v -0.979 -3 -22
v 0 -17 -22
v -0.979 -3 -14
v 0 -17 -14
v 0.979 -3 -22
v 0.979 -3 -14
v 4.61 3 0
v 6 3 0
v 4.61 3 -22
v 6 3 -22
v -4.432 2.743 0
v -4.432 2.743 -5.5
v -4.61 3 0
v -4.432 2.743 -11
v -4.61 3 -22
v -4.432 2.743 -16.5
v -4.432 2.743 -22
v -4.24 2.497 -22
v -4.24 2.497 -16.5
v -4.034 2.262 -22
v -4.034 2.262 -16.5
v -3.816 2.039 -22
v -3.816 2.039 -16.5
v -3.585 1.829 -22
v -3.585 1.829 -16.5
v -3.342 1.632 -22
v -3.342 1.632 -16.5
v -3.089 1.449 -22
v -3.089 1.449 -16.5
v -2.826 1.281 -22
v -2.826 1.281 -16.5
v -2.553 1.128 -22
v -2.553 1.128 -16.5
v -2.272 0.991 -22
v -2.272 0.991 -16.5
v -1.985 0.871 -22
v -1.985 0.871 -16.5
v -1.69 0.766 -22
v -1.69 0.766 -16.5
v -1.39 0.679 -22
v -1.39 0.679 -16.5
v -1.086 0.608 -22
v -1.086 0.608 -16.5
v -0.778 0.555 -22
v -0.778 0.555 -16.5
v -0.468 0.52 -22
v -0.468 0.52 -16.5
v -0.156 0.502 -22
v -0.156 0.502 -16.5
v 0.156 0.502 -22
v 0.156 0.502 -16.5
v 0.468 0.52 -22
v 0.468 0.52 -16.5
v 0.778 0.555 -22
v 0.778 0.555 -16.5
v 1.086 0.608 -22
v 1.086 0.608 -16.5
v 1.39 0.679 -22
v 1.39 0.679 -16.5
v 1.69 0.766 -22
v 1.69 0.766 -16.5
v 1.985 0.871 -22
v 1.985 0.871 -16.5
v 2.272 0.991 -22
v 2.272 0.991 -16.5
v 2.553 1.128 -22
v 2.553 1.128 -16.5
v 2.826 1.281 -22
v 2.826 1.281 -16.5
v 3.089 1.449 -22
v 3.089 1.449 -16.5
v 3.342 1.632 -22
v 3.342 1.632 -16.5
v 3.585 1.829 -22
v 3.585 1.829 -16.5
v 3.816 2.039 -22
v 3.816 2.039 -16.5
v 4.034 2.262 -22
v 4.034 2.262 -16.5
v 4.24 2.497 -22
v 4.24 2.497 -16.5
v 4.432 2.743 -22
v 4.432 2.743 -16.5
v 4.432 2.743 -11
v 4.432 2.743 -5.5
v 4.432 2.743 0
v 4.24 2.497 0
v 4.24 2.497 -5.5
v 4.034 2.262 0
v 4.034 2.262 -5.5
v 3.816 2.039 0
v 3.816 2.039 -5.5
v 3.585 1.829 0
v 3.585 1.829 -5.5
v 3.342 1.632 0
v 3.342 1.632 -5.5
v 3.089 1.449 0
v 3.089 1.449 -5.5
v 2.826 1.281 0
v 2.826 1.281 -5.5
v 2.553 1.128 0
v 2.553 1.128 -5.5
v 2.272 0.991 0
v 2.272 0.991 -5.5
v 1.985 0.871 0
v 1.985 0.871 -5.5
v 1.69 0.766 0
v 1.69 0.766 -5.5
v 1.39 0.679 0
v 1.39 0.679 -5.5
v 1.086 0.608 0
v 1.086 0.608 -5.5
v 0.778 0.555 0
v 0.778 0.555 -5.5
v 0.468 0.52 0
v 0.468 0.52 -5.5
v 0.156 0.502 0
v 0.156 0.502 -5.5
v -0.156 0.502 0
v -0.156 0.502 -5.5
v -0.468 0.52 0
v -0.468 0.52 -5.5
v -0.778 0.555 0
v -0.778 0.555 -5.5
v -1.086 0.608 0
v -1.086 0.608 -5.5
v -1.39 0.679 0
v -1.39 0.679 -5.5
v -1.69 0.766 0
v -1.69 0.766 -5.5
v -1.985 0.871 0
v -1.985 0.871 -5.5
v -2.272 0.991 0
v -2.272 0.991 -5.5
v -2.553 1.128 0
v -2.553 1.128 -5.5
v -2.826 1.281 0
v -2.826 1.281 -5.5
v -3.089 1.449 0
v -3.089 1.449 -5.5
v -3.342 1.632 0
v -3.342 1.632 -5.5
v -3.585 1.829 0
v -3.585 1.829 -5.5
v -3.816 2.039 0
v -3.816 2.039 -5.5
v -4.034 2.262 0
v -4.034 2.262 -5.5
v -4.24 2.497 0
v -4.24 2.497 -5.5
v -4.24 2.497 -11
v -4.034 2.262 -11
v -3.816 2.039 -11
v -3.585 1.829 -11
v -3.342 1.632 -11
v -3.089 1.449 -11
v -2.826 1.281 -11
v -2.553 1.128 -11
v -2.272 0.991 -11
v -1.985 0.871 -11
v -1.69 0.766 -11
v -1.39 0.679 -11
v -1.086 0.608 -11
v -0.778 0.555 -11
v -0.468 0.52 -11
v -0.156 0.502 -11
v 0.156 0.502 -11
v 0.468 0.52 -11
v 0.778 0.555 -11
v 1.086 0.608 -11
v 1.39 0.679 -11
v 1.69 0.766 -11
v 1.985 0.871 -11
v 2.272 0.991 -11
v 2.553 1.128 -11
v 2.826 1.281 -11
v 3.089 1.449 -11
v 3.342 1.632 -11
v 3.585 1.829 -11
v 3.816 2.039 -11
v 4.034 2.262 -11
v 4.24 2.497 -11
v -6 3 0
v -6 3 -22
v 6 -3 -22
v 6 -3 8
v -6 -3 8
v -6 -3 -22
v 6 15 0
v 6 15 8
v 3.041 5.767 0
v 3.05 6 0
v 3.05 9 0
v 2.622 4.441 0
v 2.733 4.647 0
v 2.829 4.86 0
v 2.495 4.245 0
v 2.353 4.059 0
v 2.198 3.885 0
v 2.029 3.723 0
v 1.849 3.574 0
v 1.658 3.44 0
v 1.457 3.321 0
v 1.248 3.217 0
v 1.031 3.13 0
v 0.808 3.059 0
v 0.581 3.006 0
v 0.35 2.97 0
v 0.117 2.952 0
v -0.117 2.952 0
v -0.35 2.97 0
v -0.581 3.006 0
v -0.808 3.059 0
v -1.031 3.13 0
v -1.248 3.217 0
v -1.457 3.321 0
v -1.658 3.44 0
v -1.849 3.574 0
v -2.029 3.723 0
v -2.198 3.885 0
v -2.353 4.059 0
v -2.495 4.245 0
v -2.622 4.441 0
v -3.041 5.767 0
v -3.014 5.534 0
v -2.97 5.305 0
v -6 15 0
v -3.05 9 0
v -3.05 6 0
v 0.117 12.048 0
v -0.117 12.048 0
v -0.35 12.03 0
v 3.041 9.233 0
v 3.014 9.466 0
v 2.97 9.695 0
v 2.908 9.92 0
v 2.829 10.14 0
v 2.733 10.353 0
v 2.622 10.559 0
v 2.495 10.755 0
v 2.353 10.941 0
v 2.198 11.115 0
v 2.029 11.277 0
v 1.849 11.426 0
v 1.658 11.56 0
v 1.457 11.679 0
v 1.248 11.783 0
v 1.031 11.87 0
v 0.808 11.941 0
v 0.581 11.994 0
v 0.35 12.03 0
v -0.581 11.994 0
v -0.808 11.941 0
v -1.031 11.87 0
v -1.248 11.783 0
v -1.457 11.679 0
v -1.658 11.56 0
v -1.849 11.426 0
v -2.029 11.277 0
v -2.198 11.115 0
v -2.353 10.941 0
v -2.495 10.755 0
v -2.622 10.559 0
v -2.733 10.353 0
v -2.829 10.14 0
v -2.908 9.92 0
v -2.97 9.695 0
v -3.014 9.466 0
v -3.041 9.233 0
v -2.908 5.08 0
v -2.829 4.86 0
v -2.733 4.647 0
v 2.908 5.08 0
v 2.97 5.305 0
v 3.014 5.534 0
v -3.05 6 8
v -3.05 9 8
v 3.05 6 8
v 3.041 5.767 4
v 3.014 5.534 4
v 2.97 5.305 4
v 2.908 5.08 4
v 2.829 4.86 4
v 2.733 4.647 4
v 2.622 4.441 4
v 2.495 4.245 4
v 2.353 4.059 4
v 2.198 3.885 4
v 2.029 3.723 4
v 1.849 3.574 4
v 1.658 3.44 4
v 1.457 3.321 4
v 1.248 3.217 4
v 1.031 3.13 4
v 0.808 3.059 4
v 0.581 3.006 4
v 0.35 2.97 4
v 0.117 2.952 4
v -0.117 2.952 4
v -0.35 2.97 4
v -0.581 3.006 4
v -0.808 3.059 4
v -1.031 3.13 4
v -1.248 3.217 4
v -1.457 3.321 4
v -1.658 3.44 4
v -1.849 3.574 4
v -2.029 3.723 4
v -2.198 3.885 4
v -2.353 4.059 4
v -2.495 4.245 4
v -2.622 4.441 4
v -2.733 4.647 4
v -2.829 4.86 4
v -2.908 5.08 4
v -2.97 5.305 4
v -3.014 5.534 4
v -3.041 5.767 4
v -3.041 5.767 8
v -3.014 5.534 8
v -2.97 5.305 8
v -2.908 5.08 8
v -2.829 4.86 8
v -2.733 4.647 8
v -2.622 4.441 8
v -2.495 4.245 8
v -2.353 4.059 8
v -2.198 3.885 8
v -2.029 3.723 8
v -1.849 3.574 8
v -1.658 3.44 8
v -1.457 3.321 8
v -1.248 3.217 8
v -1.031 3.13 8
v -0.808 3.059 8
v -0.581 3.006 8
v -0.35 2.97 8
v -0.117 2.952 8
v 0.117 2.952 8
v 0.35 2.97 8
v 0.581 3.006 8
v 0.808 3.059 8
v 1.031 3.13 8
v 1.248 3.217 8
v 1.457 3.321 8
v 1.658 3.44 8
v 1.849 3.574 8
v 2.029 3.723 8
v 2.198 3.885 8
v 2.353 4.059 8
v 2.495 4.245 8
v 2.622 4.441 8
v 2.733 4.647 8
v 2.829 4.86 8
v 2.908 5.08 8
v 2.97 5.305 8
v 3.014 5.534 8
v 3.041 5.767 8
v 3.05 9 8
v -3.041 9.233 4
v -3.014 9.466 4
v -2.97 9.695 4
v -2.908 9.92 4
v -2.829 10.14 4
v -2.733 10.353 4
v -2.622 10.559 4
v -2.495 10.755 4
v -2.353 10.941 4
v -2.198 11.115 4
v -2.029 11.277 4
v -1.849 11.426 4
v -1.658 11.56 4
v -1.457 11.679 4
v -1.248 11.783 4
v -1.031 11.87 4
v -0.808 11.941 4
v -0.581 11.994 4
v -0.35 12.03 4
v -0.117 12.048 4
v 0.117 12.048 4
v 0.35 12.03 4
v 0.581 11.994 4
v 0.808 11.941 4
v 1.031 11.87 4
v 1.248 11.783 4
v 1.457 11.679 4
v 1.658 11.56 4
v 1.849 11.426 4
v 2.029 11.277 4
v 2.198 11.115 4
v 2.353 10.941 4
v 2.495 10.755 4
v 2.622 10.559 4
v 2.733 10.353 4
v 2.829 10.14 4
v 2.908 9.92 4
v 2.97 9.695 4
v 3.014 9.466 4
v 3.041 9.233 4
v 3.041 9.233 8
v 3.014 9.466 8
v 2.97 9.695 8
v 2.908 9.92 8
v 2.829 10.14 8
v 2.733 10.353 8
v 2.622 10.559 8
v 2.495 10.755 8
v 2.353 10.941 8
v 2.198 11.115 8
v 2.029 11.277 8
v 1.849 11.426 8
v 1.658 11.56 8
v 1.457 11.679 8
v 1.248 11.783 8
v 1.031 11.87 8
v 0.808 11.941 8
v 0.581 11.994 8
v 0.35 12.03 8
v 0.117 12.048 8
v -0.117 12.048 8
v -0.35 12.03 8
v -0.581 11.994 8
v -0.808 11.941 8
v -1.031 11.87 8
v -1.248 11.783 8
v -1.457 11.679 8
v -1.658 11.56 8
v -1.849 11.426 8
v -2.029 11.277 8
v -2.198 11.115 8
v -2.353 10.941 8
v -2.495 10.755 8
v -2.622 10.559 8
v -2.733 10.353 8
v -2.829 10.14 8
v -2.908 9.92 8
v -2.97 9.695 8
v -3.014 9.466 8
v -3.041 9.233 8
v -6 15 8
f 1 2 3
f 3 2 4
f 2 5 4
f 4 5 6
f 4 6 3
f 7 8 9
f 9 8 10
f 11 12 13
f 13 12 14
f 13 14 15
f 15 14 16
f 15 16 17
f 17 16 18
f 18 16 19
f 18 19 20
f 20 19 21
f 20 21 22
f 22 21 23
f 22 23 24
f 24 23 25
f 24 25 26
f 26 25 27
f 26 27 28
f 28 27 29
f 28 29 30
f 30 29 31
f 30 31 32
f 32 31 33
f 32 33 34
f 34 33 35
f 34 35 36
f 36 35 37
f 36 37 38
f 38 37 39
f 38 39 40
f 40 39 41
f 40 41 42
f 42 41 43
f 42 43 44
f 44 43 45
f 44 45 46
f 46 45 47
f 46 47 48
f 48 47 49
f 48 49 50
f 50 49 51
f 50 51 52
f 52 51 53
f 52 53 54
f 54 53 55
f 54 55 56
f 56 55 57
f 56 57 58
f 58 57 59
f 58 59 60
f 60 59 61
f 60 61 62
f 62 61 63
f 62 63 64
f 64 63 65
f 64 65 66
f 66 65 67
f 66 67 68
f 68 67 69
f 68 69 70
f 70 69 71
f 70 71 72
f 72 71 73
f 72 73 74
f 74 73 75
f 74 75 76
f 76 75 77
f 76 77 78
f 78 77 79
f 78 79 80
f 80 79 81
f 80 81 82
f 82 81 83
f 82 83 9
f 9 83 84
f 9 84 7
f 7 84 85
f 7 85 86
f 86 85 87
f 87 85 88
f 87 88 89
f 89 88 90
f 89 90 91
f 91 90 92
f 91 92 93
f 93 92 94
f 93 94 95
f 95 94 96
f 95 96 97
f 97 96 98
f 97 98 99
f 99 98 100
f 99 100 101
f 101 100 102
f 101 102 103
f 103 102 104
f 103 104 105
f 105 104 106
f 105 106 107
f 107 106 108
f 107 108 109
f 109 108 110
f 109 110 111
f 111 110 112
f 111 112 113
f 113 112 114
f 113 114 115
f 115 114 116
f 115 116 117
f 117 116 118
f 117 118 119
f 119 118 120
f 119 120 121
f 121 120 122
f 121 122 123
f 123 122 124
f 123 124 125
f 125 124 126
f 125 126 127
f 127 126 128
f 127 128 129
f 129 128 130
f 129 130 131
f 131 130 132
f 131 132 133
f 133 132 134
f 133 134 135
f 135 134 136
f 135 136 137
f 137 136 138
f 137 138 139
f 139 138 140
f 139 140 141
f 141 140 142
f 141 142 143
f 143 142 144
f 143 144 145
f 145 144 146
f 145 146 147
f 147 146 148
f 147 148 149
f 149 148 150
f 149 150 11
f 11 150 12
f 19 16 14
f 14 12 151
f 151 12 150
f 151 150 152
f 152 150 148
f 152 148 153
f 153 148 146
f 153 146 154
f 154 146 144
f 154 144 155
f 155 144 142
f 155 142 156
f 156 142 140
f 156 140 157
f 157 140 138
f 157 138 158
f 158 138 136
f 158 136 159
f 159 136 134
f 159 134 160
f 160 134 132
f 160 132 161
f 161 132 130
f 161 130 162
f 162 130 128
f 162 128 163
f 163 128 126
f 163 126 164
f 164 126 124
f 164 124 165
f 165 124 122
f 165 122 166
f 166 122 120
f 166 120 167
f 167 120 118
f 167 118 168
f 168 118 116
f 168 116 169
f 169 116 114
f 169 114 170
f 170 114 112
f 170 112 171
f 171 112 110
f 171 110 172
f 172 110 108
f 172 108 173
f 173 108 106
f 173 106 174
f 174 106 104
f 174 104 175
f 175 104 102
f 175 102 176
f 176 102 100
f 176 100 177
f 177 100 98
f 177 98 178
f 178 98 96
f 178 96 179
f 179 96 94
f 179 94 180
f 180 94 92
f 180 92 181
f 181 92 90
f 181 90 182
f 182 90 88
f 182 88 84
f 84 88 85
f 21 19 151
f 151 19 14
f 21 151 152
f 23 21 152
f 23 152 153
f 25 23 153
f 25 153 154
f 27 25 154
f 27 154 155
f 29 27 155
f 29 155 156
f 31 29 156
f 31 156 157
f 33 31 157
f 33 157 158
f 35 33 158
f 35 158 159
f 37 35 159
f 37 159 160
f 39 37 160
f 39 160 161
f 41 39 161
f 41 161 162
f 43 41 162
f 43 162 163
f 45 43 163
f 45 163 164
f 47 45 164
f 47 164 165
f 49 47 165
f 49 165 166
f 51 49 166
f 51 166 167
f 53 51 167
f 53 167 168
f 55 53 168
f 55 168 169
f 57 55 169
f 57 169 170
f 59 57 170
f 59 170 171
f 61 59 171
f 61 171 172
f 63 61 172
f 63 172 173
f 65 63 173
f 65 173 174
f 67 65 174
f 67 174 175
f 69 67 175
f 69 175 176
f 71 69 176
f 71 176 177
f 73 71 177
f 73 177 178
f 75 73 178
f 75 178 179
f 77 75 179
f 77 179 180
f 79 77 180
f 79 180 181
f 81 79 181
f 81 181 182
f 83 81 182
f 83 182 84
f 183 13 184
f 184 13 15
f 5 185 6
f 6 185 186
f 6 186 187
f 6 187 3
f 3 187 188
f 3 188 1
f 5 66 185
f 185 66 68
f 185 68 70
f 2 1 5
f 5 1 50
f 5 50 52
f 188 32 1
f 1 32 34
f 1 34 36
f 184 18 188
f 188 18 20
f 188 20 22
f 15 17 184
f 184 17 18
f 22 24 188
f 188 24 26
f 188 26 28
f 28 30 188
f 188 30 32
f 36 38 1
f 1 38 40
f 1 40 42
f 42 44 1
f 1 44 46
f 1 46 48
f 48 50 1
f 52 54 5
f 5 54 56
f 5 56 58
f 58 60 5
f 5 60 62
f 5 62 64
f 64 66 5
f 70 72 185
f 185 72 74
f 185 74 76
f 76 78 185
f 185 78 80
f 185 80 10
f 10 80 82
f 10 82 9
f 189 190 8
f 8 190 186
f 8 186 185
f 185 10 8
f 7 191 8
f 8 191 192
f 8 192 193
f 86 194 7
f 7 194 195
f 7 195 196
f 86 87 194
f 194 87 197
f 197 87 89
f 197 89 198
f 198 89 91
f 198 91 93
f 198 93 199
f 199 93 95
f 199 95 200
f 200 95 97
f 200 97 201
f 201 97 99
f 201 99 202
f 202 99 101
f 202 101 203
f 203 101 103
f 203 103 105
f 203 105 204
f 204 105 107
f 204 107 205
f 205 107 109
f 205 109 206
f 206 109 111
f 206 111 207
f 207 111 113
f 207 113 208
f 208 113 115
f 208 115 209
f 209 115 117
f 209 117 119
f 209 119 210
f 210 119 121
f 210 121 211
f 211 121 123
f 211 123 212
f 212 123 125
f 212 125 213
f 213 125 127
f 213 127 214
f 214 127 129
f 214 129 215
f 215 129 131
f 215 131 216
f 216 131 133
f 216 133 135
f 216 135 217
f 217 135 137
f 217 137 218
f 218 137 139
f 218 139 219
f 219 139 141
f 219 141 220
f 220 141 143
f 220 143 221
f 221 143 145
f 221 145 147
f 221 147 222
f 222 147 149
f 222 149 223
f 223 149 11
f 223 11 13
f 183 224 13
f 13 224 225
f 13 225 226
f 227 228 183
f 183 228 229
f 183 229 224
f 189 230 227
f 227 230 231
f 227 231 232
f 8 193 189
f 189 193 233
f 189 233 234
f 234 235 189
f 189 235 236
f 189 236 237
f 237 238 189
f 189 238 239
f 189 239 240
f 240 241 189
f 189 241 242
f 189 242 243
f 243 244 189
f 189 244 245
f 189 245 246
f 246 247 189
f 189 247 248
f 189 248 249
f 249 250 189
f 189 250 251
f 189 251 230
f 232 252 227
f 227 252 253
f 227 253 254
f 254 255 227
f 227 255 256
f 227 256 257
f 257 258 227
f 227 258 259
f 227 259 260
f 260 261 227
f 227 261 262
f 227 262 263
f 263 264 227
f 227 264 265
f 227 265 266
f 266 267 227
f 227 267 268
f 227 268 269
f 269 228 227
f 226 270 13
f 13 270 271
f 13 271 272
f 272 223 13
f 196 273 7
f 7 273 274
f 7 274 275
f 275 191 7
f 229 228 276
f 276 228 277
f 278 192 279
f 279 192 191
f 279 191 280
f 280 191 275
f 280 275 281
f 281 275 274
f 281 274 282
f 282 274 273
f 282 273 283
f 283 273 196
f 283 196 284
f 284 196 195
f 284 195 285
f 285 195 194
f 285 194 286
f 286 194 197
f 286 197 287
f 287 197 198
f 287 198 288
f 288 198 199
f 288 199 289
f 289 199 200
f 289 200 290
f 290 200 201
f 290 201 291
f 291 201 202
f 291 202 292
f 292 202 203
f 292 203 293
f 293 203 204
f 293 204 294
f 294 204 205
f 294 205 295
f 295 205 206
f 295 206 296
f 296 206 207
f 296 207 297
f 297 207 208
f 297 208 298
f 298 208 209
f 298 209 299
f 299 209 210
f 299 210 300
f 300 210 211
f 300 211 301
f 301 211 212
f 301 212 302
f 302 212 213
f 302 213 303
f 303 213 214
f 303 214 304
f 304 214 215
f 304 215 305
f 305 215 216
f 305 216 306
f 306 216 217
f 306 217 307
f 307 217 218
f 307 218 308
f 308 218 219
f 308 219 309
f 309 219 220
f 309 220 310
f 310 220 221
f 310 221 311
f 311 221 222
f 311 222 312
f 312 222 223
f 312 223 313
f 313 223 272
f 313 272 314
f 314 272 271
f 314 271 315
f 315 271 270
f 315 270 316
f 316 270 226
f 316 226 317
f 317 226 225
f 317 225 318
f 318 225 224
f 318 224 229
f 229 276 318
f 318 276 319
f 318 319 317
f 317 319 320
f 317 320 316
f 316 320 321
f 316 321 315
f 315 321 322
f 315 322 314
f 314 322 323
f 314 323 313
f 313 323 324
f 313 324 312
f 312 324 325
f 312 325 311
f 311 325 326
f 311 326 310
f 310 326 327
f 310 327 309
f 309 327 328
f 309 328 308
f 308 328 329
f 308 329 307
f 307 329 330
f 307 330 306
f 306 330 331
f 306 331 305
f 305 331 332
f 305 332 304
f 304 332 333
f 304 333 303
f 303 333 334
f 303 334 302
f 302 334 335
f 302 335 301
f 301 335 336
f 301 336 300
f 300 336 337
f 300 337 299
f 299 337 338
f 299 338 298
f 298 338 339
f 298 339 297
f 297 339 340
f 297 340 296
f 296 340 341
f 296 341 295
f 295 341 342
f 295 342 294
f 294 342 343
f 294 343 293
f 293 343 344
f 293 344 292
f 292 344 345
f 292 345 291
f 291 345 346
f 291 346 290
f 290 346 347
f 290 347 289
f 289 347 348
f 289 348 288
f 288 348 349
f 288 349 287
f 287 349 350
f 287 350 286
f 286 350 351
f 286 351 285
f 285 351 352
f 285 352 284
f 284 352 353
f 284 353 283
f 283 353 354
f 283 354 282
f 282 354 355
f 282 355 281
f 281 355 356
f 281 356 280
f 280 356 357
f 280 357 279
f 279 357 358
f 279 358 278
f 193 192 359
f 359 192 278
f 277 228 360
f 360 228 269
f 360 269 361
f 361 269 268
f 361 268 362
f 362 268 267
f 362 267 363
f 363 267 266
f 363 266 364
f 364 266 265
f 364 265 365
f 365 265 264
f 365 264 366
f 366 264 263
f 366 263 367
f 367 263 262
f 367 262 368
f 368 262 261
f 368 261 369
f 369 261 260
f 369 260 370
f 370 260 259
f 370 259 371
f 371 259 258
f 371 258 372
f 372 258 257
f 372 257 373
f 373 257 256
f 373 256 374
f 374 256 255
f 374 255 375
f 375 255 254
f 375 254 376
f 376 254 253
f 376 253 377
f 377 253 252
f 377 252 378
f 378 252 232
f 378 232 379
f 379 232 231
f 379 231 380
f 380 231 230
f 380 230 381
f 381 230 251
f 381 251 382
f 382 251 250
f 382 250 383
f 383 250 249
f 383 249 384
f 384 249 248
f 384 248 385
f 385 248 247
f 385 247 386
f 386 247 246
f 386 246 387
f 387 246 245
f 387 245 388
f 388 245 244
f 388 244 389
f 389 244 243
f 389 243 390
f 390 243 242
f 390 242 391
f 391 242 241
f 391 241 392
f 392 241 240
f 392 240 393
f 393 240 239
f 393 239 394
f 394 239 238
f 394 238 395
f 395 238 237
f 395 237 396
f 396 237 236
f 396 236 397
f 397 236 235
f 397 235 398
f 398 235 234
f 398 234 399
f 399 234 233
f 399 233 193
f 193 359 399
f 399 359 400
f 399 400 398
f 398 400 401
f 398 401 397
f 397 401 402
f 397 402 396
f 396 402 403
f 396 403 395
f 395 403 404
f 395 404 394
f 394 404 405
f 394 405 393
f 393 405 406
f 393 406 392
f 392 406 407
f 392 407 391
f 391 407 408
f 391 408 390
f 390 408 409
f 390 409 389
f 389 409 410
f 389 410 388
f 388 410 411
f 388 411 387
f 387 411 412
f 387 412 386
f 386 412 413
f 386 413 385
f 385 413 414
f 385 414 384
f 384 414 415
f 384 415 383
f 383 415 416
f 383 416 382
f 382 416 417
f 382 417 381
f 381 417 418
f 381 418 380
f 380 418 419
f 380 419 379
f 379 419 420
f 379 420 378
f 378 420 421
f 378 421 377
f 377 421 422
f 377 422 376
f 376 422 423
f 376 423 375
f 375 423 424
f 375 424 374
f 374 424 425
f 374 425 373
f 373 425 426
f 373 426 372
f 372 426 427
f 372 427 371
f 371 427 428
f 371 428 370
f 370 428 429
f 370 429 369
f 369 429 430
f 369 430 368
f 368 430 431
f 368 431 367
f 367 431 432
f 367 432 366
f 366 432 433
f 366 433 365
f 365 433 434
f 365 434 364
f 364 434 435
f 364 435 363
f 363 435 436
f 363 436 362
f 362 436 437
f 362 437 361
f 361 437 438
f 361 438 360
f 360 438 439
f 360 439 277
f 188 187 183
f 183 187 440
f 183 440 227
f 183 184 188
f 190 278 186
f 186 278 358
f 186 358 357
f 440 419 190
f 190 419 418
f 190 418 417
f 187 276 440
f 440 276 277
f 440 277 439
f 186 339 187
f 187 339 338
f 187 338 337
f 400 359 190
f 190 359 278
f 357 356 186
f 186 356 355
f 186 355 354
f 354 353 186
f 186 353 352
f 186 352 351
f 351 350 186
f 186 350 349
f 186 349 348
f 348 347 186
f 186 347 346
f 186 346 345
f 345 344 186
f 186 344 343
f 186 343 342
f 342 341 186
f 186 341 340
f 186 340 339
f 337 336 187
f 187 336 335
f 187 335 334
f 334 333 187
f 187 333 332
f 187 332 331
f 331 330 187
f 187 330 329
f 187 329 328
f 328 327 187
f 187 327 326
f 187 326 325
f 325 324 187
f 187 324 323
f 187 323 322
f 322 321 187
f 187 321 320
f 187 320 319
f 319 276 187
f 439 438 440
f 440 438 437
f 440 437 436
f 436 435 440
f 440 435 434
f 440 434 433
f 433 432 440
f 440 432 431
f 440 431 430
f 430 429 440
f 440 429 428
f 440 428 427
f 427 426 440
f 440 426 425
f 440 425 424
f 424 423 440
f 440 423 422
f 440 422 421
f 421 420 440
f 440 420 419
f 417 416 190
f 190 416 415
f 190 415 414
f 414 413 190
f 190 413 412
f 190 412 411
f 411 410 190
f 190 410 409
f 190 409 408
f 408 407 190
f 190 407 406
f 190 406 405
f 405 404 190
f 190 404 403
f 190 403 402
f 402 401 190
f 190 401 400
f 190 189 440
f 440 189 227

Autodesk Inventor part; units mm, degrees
ref_plane "YZ Plane" through (0, 0, 0) normal (1, 0, 0) x (0, 1, 0)
ref_plane "XZ Plane" through (0, 0, 0) normal (0, 1, 0) x (-1, 0, 0)
ref_plane "XY Plane" through (0, 0, 0) normal (0, 0, 1) x (1, 0, 0)
sketch "Sketch1" plane through (0, 0, 0) normal (1, 0, 0) x (0, 1, 0)
  line L0 (0, 8) -> (0, 0)
  line L1 (0, 8) -> (15, 8)
  line L2 (15, 8) -> (15, 0)
  line L3 (6, 0) -> (6, 8) construction
  line L4 (0, 0) -> (15, 0)
  dimension "d38" = 6
  dimension "d40" = 8
  dimension "d59" = 15
extrude "Extrusion1" add sketch "Sketch1" along normal mid plane 12
sketch "Sketch3" plane through (6, 0, 8) normal (0, 0, 1) x (1, 0, 0)
  circle A0 centre (-6, 6) radius 3.05
  line L0 (-12, 0) -> (0, 0) projected
  line L1 (0, 15) -> (0, 0) projected
  circle A1 centre (-6, 9) radius 3.05
  line L2 (-2.95, 9) -> (-2.95, 6)
  line L3 (-9.05, 9) -> (-9.05, 6)
  point P0 (0, -6)
  dimension "d9" = 6.1
  dimension "d23" = 6
  dimension "d41" = 6
  dimension "d60" = 6.1
  dimension "d61" = 3
extrude "Extrusion3" cut sketch "Sketch3" against normal through all
sketch "Sketch8" plane through (-6, 0, 8) normal (0, 0, 1) x (1, 0, 0)
  arc A0 (2.95, 6) -> (9.05, 6) centre (6, 6) ccw construction
  circle A1 centre (6, 6) radius 5.5
  line L0 (0, 15) -> (0, 0) projected
  line L1 (0, 3) -> (1.3902, 3)
  line L2 (10.6098, 3) -> (12, 3)
  line L3 (12, 15) -> (12, 0) projected
  line L4 (12, 0) -> (12, -3)
  line L5 (12, -3) -> (0, -3)
  line L6 (0, -3) -> (0, 0)
  line L7 (0, 0) -> (12, 0) construction
  point P0 (6, 0)
  point P1 (12, 12.26)
  dimension "d47" = 11
  dimension "d48" = 6
  dimension "d49" = 3
extrude "Extrusion7" add sketch "Sketch8" against normal blind 30 contours A1 L2 L3 L4 L5 L6 L0 L1
sketch "Sketch9" plane through (-6, 0, -22) normal (0, 0, -1) x (-1, 0, 0)
  line L0 (-6.979, -3) -> (-6, -17)
  line L1 (-6, -17) -> (-5.021, -3)
  line L2 (-12, -3) -> (0, -3) projected
  line L3 (-6, -17) -> (-6, -3) construction
  point P0 (-6, 0)
  dimension "d54" = 14
  dimension "d55" = 4
  dimension "d56" = 4
extrude "Extrusion8" add sketch "Sketch9" against normal blind 8
equation "\"d56\" = d55"
properties part number "angle_pointer"
